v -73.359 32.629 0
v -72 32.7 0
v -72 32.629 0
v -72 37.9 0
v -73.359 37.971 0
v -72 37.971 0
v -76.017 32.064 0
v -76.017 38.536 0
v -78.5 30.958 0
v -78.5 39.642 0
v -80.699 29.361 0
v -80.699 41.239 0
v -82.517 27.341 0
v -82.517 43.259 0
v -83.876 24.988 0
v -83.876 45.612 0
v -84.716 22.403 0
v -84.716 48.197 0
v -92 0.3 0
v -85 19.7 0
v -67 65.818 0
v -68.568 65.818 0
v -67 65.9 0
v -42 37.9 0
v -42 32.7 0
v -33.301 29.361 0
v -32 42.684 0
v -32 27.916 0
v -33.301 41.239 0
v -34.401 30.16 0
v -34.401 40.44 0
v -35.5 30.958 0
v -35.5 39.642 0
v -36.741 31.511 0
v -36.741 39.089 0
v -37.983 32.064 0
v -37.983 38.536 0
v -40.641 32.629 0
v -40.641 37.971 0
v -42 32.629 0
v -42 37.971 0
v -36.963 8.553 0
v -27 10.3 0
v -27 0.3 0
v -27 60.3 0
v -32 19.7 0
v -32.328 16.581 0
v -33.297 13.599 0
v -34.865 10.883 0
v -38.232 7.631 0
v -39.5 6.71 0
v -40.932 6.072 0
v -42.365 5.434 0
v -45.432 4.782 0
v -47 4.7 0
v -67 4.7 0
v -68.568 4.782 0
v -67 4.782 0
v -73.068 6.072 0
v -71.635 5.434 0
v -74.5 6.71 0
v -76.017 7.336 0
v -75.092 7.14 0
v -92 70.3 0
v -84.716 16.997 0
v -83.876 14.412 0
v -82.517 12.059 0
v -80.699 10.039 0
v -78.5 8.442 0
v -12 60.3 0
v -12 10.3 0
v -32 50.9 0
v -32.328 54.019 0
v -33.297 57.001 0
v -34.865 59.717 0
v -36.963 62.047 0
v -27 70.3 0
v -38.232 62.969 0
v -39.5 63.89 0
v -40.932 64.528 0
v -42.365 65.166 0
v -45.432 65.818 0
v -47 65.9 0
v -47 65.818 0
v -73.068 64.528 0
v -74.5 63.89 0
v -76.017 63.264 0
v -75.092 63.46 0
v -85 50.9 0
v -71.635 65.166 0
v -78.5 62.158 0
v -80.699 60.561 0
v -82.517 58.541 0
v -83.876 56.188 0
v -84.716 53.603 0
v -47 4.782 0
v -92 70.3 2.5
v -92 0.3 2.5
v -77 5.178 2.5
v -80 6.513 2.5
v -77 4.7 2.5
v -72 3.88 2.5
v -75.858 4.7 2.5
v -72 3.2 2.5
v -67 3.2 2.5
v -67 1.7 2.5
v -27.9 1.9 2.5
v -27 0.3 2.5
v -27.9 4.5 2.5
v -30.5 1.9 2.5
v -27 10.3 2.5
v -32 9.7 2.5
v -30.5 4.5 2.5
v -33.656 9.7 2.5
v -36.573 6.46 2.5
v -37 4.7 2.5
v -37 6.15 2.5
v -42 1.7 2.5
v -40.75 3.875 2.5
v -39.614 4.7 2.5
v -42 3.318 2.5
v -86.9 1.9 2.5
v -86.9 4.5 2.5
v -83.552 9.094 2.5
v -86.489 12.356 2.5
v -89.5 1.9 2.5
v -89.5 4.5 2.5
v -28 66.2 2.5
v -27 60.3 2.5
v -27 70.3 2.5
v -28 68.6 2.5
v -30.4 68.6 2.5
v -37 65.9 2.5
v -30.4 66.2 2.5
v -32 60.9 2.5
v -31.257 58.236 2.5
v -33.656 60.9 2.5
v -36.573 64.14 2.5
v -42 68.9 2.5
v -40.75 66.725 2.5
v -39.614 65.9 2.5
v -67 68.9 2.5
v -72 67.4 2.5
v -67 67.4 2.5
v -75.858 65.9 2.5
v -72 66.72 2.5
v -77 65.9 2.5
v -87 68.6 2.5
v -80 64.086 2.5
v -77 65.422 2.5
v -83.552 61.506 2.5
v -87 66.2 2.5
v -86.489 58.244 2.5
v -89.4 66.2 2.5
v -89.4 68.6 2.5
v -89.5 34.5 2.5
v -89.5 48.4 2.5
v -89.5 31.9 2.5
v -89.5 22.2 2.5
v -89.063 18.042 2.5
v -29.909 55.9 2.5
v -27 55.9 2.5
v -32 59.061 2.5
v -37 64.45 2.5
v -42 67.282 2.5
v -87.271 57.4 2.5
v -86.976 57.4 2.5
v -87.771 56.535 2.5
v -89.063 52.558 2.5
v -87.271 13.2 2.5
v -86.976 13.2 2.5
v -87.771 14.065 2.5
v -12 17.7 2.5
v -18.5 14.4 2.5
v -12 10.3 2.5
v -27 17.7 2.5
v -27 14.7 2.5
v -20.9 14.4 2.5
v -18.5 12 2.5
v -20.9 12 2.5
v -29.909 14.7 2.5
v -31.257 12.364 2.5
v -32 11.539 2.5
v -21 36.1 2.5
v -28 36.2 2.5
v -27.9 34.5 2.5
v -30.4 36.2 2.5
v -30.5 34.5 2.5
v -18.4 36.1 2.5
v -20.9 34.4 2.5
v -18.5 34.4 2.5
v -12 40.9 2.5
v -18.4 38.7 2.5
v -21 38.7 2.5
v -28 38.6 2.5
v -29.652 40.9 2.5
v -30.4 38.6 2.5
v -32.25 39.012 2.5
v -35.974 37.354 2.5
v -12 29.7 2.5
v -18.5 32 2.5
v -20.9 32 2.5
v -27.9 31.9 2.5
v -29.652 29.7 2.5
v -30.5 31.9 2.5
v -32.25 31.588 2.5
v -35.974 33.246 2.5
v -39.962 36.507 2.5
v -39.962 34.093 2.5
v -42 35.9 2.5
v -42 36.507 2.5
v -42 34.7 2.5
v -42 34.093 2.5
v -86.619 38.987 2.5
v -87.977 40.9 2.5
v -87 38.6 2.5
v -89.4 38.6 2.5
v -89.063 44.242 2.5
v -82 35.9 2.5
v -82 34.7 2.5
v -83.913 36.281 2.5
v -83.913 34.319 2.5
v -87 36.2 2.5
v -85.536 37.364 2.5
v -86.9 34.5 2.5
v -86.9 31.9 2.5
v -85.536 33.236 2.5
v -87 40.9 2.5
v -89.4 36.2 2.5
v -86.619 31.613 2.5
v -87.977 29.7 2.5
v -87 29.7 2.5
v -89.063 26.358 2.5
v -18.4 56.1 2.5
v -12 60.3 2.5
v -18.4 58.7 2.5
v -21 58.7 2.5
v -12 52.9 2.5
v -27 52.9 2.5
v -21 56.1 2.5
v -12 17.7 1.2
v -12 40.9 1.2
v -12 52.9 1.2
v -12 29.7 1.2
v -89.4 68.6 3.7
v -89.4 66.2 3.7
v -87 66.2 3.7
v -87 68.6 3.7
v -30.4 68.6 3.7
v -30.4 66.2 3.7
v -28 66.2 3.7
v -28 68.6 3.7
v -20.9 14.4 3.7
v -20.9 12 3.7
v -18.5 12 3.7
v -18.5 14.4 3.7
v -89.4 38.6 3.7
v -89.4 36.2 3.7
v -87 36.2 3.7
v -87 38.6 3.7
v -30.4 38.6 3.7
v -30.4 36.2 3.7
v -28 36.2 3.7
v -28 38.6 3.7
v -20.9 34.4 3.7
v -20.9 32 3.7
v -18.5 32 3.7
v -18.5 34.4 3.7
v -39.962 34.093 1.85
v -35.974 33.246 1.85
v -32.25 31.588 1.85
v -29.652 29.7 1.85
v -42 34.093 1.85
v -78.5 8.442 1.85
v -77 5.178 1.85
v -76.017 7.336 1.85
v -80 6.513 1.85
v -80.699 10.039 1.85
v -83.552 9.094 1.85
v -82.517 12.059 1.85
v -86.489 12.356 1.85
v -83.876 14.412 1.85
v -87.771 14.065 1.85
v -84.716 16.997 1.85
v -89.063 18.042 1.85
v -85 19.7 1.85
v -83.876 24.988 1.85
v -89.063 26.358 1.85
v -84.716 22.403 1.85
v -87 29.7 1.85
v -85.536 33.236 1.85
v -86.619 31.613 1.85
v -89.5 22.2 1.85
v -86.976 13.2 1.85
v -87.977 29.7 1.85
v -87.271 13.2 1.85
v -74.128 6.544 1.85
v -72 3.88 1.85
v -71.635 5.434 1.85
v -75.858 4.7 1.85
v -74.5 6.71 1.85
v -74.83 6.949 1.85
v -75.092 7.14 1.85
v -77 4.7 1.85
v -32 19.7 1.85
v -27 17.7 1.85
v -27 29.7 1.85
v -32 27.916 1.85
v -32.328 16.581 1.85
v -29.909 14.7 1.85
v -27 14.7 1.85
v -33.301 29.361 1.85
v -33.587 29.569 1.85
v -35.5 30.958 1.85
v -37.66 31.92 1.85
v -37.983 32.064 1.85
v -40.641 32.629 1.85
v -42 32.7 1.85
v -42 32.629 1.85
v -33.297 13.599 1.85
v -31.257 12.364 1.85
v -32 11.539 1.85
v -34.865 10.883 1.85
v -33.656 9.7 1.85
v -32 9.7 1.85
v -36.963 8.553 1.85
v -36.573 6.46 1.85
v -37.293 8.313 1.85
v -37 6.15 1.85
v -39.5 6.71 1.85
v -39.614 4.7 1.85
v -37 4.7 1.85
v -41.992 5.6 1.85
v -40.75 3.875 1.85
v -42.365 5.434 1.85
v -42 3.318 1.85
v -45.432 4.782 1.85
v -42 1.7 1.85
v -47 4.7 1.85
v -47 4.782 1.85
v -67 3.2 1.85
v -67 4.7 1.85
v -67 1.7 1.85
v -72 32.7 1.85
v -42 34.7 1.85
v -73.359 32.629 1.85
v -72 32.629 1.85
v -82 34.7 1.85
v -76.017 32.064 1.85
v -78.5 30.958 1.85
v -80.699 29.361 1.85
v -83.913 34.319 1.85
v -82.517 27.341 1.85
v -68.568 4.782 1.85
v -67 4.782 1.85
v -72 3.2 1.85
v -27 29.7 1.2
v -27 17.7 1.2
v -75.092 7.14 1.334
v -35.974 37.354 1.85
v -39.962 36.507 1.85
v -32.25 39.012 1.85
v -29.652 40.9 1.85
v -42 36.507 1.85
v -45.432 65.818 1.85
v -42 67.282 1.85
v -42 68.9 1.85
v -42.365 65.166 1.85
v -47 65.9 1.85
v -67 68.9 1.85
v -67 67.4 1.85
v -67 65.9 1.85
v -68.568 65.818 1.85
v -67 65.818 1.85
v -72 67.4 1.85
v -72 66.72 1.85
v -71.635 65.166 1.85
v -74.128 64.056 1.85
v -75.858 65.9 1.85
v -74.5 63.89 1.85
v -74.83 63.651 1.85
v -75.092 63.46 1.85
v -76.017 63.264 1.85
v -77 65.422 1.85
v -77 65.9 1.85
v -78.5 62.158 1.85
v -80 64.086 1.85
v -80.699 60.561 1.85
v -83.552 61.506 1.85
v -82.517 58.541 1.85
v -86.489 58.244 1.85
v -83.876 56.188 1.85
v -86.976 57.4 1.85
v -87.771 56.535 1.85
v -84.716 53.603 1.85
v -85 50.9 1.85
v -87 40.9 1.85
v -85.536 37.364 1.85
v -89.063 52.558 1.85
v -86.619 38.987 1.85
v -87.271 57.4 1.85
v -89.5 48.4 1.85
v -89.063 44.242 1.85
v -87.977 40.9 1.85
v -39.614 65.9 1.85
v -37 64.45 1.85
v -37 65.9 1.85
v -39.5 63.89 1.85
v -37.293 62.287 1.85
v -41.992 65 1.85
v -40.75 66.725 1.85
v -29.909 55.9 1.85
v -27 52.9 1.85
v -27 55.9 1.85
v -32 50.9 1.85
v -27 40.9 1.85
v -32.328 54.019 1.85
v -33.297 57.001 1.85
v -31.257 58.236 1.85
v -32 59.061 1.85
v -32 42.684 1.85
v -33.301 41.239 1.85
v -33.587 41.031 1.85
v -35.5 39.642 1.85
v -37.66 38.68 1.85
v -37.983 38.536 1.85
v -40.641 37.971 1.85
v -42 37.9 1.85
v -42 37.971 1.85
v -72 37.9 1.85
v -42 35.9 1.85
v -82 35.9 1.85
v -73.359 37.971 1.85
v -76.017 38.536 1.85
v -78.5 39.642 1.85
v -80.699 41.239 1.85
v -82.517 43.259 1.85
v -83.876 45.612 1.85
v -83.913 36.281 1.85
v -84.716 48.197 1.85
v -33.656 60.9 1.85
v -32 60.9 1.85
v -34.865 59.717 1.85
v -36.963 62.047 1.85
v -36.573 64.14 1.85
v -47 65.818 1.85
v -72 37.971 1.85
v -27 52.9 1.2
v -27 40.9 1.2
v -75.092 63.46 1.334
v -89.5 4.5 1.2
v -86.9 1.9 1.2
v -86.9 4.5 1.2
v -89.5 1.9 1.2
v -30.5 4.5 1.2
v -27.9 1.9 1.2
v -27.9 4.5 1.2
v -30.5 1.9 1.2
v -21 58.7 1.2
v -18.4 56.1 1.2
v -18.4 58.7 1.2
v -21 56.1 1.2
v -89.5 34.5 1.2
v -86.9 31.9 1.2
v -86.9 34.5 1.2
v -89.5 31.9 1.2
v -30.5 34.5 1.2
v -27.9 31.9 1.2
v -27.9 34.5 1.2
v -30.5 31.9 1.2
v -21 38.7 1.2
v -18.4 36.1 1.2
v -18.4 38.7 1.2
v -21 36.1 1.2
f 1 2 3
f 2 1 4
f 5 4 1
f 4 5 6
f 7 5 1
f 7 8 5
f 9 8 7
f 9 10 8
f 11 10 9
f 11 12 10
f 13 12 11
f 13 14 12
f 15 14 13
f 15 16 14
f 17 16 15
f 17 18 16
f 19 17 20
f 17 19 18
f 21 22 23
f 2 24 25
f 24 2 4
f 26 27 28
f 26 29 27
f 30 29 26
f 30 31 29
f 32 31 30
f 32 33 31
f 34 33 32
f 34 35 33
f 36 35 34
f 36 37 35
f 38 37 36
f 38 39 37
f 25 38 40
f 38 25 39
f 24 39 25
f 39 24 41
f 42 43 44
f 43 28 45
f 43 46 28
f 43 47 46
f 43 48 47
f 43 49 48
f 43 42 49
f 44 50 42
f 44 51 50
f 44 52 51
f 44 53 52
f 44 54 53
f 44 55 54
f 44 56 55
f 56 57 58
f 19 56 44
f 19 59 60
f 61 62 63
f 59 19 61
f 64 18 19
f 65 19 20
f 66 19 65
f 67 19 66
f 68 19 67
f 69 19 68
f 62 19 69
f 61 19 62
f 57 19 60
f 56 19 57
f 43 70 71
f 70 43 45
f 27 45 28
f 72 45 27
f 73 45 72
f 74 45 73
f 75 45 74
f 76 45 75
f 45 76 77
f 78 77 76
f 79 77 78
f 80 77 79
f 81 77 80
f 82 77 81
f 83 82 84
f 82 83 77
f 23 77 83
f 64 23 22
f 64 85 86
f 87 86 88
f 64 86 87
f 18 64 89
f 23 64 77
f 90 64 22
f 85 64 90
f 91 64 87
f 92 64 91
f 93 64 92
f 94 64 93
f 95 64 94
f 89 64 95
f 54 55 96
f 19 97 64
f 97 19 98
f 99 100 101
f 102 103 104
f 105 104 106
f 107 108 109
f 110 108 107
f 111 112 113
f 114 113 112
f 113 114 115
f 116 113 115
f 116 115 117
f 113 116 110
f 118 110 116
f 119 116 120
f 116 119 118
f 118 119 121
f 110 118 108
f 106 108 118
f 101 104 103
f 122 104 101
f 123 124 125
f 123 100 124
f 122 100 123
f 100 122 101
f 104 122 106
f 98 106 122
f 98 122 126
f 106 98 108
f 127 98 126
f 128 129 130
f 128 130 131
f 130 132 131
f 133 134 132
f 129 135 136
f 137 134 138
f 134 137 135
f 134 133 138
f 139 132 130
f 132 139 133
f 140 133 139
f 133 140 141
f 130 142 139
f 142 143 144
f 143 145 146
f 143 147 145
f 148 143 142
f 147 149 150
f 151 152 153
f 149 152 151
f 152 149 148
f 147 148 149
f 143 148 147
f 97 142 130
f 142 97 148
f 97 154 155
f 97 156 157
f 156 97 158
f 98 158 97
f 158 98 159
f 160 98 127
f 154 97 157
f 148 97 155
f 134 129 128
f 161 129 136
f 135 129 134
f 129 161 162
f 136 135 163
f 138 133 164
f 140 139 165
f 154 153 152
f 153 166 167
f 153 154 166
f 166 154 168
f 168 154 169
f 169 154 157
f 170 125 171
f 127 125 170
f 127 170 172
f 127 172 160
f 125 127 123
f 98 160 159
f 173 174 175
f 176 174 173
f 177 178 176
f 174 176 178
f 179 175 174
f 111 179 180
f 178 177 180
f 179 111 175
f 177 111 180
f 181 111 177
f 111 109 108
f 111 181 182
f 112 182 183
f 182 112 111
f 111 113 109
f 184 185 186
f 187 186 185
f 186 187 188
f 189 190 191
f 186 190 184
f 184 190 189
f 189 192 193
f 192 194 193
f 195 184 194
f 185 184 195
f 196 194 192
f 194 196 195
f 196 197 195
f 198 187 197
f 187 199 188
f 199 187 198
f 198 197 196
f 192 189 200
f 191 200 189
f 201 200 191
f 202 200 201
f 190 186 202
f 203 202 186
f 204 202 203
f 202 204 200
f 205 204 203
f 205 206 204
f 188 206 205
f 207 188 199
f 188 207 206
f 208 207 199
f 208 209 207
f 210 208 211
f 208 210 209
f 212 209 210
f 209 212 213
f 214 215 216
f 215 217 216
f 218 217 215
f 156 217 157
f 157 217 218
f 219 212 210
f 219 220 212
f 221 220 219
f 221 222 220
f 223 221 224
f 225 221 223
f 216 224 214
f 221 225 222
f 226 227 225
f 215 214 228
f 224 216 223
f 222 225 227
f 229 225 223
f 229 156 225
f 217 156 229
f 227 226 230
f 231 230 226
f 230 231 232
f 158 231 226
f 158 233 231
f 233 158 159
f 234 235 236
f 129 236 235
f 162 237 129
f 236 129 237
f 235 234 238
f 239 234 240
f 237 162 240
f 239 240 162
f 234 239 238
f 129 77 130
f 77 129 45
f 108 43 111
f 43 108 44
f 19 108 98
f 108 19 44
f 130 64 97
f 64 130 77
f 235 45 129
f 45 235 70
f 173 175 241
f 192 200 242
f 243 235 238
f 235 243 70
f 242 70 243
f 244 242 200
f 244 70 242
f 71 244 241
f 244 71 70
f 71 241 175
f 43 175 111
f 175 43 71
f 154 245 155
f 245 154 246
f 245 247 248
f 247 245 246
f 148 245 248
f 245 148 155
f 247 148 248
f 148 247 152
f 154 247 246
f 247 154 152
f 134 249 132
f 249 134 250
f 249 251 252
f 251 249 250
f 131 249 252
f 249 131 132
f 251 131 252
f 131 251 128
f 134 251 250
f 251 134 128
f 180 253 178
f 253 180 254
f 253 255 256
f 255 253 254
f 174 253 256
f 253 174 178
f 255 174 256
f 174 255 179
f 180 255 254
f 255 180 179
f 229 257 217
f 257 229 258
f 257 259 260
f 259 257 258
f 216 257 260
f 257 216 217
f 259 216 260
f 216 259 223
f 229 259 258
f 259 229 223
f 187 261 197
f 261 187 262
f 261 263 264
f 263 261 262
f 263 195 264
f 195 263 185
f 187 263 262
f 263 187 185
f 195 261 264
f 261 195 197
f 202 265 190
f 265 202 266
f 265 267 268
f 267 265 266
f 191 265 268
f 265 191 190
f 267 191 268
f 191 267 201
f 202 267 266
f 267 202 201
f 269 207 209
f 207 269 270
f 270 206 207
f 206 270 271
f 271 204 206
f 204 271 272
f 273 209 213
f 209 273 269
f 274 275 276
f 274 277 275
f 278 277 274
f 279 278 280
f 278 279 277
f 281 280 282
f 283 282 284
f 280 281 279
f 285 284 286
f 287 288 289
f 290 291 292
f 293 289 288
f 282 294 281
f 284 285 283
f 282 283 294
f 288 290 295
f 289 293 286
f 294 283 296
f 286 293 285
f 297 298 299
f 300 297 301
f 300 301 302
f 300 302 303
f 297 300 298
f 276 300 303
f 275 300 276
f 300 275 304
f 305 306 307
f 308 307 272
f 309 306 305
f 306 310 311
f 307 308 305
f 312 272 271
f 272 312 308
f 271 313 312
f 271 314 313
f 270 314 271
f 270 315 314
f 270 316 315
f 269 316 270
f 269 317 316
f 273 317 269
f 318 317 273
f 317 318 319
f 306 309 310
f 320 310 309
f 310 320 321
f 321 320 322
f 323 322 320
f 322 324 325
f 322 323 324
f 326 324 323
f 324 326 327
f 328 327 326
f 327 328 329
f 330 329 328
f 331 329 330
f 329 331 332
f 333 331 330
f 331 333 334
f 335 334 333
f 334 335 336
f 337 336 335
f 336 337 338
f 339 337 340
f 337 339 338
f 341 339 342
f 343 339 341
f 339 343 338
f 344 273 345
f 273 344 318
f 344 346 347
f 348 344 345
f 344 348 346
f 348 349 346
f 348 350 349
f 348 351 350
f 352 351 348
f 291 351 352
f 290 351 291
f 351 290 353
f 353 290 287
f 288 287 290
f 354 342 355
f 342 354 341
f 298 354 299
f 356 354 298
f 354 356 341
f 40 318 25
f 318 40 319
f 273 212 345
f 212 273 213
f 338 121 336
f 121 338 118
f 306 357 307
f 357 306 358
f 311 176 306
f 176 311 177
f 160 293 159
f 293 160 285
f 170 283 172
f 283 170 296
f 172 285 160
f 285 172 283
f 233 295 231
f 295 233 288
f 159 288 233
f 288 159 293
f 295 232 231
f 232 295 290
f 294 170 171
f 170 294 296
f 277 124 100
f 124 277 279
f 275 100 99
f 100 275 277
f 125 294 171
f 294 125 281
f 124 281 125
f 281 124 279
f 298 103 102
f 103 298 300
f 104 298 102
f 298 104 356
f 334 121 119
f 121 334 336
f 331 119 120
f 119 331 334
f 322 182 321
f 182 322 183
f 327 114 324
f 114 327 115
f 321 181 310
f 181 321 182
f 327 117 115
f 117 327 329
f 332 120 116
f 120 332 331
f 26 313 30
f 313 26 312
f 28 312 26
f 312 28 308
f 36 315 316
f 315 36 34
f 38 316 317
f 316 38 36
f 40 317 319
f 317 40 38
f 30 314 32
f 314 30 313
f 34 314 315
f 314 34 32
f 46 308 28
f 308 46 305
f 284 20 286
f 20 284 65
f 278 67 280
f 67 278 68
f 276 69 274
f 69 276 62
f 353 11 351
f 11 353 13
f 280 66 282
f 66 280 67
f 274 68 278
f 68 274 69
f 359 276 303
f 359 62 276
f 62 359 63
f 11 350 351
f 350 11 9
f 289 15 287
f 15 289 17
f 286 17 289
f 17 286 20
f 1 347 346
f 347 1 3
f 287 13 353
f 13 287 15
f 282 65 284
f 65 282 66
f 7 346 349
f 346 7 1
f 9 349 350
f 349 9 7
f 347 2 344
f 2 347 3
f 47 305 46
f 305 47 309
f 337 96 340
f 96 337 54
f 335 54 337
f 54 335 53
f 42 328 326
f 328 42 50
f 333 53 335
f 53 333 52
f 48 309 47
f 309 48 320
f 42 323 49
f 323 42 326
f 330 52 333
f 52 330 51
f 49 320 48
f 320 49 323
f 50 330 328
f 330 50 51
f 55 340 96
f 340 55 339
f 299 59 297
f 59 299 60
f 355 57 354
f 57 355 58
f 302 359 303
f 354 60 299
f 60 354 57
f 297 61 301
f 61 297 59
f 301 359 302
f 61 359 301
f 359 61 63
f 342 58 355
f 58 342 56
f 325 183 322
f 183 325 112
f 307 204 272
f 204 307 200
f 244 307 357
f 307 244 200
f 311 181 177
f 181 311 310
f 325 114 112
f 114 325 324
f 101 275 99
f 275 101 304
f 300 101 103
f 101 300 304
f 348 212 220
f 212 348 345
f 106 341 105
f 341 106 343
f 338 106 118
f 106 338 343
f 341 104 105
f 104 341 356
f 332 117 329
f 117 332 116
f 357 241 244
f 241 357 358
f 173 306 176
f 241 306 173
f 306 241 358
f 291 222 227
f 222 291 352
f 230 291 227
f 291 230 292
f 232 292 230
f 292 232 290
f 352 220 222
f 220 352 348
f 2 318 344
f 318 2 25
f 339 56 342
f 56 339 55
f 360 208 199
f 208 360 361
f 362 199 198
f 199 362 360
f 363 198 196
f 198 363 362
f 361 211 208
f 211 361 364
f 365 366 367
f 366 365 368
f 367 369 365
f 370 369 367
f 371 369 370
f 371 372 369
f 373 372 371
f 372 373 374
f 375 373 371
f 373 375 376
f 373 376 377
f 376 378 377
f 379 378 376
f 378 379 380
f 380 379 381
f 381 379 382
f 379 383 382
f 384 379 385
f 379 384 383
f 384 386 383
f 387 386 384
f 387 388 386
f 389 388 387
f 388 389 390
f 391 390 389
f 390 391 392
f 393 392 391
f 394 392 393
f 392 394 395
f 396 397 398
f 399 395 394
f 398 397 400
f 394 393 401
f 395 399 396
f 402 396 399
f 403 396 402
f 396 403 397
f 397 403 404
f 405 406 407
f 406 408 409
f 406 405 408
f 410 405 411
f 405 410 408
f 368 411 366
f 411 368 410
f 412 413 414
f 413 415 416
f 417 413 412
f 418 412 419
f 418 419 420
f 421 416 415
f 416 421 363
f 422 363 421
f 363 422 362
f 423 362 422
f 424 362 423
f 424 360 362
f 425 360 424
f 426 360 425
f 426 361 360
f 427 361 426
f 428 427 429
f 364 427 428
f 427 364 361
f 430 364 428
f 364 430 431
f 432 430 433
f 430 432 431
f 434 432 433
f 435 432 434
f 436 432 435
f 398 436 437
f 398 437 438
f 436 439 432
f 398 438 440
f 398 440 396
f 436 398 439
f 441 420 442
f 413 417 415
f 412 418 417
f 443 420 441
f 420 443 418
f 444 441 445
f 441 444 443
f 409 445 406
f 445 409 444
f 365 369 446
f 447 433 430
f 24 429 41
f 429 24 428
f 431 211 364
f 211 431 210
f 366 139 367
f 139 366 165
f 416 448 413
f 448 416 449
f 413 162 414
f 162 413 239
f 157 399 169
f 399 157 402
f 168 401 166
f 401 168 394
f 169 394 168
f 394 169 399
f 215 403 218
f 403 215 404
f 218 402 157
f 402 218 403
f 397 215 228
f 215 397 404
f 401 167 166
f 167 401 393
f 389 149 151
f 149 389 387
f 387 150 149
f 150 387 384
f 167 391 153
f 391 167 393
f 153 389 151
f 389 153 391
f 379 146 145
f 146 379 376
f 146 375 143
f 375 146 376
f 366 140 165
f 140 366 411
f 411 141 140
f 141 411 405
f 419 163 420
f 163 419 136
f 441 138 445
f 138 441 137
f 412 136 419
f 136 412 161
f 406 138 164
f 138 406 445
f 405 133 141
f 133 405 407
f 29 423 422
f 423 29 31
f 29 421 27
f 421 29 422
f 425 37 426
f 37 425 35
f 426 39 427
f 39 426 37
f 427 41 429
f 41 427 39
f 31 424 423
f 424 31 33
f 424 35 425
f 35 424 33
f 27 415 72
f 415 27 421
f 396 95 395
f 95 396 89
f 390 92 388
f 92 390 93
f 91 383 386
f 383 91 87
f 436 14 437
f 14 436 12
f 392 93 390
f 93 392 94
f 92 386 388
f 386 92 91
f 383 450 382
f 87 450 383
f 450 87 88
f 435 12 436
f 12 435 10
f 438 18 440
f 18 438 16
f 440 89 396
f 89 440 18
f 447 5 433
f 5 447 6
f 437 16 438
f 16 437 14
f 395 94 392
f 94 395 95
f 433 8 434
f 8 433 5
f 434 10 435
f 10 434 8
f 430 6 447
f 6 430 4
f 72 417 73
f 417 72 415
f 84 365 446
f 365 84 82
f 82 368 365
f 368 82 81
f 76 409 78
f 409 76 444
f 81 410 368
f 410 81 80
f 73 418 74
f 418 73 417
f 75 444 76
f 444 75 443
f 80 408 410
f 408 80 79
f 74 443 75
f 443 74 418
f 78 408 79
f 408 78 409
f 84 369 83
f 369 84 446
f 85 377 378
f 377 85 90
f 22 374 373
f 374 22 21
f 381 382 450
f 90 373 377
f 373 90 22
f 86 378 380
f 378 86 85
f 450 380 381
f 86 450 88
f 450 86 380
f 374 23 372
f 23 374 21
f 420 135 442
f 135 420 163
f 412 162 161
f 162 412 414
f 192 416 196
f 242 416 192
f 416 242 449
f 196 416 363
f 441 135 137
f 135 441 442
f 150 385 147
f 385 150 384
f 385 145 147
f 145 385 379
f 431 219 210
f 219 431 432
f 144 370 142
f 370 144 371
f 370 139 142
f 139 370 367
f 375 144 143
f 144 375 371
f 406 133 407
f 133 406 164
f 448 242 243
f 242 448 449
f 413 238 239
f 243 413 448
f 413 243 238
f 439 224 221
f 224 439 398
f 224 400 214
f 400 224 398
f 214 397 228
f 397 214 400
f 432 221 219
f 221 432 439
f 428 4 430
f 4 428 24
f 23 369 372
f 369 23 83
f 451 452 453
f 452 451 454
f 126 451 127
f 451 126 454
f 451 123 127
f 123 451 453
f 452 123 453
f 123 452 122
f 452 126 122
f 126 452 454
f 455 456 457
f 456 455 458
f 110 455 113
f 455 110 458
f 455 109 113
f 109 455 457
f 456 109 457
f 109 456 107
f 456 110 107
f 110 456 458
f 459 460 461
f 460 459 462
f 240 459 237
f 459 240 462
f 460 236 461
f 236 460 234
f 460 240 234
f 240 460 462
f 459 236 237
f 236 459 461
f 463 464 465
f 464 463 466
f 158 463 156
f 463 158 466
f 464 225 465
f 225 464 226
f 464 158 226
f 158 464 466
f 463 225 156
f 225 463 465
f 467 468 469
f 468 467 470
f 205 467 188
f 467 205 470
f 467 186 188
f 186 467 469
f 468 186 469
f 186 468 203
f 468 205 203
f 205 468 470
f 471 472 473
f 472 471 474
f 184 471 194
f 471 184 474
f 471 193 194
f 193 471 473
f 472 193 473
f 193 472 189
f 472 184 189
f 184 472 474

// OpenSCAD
rotate([0,-90,0]) translate([0, 0, 04]) difference() {
    union() {
        translate([0, 0.3, 23]) cube([2.5, 70, 65]);
        translate([0, 10.3, 8]) cube([2.5, 50, 20]);
        translate([2.5, 66.2, 83]) cube([1.2, 2.4,2.4]);
        translate([2.5, 66.2, 24]) cube([1.2, 2.4,2.4]);
        translate([2.5, 12, 14.5]) cube([1.2, 2.4,2.4]);
        translate([2.5, 36.2, 83]) cube([1.2, 2.4,2.4]);
        translate([2.5, 36.2, 24]) cube([1.2, 2.4,2.4]);
        translate([2.5, 32, 14.5]) cube([1.2, 2.4,2.4]);
    }
    
    translate([1.2, 1.9, 82.9]) cube([1.3, 2.6,2.6]);
    translate([1.2, 1.9, 23.9]) cube([1.3, 2.6,2.6]);
    translate([1.2, 56.1, 14.4]) cube([1.3, 2.6,2.6]);
    translate([1.2, 31.9, 82.9]) cube([1.3, 2.6,2.6]);
    translate([1.2, 31.9, 23.9]) cube([1.3, 2.6,2.6]);
    translate([1.2, 36.1, 14.4]) cube([1.3, 2.6,2.6]);
    
   
    
    translate([0,34.7,23]) mirror([0,-1,0]) {
        translate([1.85, 5, 0]) cube([1, 15, 5]);
        translate([1.85, 5, 5]) cube([1, 20, 10]);
        translate([1.85, 0,15]) cube([1, 30, 35]);
        translate([1.85,30,15]) cube([1, 3, 25]);
        translate([1.85,30,40]) cube([1, 1.5, 5]);
        translate([1.85, 0,50]) cube([1, 25, 5]);
        translate([1.85, 5,55]) cube([1, 15, 5]);
        translate([1.85,25,10]) cube([1, 5, 5]);
        translate([1.2,5,-40]) cube([2, 12, 40]);
        
        
        translate([2.5,5,55]) rotate([0,90,0]) cylinder(h=1.3, r=5, center=true);
        intersection() {
            translate([2.5,20,15]) rotate([0,90,0]) cylinder(h=1.3, r=19.5, center=true);
            translate([0,0,0]) cube([3,10,15]);
        } intersection() {
            translate([2.5,12.5,42.5]) rotate([0,90,0]) cylinder(h=1.3, r=20, center=true);
            translate([0,5 ,50]) cube([3,16.5,15]);
        } intersection() {
            translate([2.5,10,42.5]) rotate([0,90,0]) cylinder(h=1.3, r=21, center=true);
            translate([0,15 ,45]) cube([3,20,16]);
        } intersection() {
            translate([2.5,20,20]) rotate([0,90,0]) cylinder(h=1.3, r=12.5, center=true);
            translate([0,20 ,10]) cube([3,20,20]);
        } intersection() {
            translate([2.5,0,35]) rotate([0,90,0]) cylinder(h=1.3, r=38, center=true);
            translate([0,15 ,0]) cube([3,15,15]);
        } intersection() {
            translate([0,15,15]) rotate([0,90,0]) cylinder(h=5, r=13, center=true);
            translate([0,0,5]) cube([5,15,30]);
        } intersection() {
            translate([0,15,45]) rotate([0,90,0]) cylinder(h=5, r=13, center=true);
            translate([0,0,45]) cube([5,30,15]);
        } intersection() {
            translate([0,15,20]) rotate([0,90,0]) cylinder(h=5, r=15, center=true);
            translate([0,5,5]) cube([5,30,15]);
        } intersection() {
            translate([0,15,40]) rotate([0,90,0]) cylinder(h=5, r=15, center=true);
            translate([0,15,40]) cube([5,15,10]);
        }
        translate([0,2,15]) cube([5,13,30]);
        translate([0,15,20]) cube([5,15,20]);
    }

    
    translate([0,35.9,23]) {
        translate([1.85, 5, 0]) cube([1, 15, 5]);
        translate([1.85, 5, 5]) cube([1, 20, 10]);
        translate([1.85, 0,15]) cube([1, 30, 35]);
        translate([1.85,30,15]) cube([1, 3, 25]);
        translate([1.85,30,40]) cube([1, 1.5, 5]);
        translate([1.85, 0,50]) cube([1, 25, 5]);
        translate([1.85, 5,55]) cube([1, 15, 5]);
        translate([1.85,25,10]) cube([1, 5, 5]);
        translate([1.2,5,-40]) cube([2, 12, 40]);
        
        
        translate([2.5,5,55]) rotate([0,90,0]) cylinder(h=1.3, r=5, center=true);
        intersection() {
            translate([2.5,20,15]) rotate([0,90,0]) cylinder(h=1.3, r=19.5, center=true);
            translate([0,0,0]) cube([3,10,15]);
        } intersection() {
            translate([2.5,12.5,42.5]) rotate([0,90,0]) cylinder(h=1.3, r=20, center=true);
            translate([0,5 ,50]) cube([3,16.5,15]);
        } intersection() {
            translate([2.5,10,42.5]) rotate([0,90,0]) cylinder(h=1.3, r=21, center=true);
            translate([0,15 ,45]) cube([3,20,16]);
        } intersection() {
            translate([2.5,20,20]) rotate([0,90,0]) cylinder(h=1.3, r=12.5, center=true);
            translate([0,20 ,10]) cube([3,20,20]);
        } intersection() {
            translate([2.5,0,35]) rotate([0,90,0]) cylinder(h=1.3, r=38, center=true);
            translate([0,15 ,0]) cube([3,15,15]);
        } intersection() {
            translate([0,15,15]) rotate([0,90,0]) cylinder(h=5, r=13, center=true);
            translate([0,0,5]) cube([5,15,30]);
        } intersection() {
            translate([0,15,45]) rotate([0,90,0]) cylinder(h=5, r=13, center=true);
            translate([0,0,45]) cube([5,30,15]);
        } intersection() {
            translate([0,15,20]) rotate([0,90,0]) cylinder(h=5, r=15, center=true);
            translate([0,5,5]) cube([5,30,15]);
        } intersection() {
            translate([0,15,40]) rotate([0,90,0]) cylinder(h=5, r=15, center=true);
            translate([0,15,40]) cube([5,15,10]);
        }
        translate([0,2,15]) cube([5,13,30]);
        translate([0,15,20]) cube([5,15,20]);
    }
}
